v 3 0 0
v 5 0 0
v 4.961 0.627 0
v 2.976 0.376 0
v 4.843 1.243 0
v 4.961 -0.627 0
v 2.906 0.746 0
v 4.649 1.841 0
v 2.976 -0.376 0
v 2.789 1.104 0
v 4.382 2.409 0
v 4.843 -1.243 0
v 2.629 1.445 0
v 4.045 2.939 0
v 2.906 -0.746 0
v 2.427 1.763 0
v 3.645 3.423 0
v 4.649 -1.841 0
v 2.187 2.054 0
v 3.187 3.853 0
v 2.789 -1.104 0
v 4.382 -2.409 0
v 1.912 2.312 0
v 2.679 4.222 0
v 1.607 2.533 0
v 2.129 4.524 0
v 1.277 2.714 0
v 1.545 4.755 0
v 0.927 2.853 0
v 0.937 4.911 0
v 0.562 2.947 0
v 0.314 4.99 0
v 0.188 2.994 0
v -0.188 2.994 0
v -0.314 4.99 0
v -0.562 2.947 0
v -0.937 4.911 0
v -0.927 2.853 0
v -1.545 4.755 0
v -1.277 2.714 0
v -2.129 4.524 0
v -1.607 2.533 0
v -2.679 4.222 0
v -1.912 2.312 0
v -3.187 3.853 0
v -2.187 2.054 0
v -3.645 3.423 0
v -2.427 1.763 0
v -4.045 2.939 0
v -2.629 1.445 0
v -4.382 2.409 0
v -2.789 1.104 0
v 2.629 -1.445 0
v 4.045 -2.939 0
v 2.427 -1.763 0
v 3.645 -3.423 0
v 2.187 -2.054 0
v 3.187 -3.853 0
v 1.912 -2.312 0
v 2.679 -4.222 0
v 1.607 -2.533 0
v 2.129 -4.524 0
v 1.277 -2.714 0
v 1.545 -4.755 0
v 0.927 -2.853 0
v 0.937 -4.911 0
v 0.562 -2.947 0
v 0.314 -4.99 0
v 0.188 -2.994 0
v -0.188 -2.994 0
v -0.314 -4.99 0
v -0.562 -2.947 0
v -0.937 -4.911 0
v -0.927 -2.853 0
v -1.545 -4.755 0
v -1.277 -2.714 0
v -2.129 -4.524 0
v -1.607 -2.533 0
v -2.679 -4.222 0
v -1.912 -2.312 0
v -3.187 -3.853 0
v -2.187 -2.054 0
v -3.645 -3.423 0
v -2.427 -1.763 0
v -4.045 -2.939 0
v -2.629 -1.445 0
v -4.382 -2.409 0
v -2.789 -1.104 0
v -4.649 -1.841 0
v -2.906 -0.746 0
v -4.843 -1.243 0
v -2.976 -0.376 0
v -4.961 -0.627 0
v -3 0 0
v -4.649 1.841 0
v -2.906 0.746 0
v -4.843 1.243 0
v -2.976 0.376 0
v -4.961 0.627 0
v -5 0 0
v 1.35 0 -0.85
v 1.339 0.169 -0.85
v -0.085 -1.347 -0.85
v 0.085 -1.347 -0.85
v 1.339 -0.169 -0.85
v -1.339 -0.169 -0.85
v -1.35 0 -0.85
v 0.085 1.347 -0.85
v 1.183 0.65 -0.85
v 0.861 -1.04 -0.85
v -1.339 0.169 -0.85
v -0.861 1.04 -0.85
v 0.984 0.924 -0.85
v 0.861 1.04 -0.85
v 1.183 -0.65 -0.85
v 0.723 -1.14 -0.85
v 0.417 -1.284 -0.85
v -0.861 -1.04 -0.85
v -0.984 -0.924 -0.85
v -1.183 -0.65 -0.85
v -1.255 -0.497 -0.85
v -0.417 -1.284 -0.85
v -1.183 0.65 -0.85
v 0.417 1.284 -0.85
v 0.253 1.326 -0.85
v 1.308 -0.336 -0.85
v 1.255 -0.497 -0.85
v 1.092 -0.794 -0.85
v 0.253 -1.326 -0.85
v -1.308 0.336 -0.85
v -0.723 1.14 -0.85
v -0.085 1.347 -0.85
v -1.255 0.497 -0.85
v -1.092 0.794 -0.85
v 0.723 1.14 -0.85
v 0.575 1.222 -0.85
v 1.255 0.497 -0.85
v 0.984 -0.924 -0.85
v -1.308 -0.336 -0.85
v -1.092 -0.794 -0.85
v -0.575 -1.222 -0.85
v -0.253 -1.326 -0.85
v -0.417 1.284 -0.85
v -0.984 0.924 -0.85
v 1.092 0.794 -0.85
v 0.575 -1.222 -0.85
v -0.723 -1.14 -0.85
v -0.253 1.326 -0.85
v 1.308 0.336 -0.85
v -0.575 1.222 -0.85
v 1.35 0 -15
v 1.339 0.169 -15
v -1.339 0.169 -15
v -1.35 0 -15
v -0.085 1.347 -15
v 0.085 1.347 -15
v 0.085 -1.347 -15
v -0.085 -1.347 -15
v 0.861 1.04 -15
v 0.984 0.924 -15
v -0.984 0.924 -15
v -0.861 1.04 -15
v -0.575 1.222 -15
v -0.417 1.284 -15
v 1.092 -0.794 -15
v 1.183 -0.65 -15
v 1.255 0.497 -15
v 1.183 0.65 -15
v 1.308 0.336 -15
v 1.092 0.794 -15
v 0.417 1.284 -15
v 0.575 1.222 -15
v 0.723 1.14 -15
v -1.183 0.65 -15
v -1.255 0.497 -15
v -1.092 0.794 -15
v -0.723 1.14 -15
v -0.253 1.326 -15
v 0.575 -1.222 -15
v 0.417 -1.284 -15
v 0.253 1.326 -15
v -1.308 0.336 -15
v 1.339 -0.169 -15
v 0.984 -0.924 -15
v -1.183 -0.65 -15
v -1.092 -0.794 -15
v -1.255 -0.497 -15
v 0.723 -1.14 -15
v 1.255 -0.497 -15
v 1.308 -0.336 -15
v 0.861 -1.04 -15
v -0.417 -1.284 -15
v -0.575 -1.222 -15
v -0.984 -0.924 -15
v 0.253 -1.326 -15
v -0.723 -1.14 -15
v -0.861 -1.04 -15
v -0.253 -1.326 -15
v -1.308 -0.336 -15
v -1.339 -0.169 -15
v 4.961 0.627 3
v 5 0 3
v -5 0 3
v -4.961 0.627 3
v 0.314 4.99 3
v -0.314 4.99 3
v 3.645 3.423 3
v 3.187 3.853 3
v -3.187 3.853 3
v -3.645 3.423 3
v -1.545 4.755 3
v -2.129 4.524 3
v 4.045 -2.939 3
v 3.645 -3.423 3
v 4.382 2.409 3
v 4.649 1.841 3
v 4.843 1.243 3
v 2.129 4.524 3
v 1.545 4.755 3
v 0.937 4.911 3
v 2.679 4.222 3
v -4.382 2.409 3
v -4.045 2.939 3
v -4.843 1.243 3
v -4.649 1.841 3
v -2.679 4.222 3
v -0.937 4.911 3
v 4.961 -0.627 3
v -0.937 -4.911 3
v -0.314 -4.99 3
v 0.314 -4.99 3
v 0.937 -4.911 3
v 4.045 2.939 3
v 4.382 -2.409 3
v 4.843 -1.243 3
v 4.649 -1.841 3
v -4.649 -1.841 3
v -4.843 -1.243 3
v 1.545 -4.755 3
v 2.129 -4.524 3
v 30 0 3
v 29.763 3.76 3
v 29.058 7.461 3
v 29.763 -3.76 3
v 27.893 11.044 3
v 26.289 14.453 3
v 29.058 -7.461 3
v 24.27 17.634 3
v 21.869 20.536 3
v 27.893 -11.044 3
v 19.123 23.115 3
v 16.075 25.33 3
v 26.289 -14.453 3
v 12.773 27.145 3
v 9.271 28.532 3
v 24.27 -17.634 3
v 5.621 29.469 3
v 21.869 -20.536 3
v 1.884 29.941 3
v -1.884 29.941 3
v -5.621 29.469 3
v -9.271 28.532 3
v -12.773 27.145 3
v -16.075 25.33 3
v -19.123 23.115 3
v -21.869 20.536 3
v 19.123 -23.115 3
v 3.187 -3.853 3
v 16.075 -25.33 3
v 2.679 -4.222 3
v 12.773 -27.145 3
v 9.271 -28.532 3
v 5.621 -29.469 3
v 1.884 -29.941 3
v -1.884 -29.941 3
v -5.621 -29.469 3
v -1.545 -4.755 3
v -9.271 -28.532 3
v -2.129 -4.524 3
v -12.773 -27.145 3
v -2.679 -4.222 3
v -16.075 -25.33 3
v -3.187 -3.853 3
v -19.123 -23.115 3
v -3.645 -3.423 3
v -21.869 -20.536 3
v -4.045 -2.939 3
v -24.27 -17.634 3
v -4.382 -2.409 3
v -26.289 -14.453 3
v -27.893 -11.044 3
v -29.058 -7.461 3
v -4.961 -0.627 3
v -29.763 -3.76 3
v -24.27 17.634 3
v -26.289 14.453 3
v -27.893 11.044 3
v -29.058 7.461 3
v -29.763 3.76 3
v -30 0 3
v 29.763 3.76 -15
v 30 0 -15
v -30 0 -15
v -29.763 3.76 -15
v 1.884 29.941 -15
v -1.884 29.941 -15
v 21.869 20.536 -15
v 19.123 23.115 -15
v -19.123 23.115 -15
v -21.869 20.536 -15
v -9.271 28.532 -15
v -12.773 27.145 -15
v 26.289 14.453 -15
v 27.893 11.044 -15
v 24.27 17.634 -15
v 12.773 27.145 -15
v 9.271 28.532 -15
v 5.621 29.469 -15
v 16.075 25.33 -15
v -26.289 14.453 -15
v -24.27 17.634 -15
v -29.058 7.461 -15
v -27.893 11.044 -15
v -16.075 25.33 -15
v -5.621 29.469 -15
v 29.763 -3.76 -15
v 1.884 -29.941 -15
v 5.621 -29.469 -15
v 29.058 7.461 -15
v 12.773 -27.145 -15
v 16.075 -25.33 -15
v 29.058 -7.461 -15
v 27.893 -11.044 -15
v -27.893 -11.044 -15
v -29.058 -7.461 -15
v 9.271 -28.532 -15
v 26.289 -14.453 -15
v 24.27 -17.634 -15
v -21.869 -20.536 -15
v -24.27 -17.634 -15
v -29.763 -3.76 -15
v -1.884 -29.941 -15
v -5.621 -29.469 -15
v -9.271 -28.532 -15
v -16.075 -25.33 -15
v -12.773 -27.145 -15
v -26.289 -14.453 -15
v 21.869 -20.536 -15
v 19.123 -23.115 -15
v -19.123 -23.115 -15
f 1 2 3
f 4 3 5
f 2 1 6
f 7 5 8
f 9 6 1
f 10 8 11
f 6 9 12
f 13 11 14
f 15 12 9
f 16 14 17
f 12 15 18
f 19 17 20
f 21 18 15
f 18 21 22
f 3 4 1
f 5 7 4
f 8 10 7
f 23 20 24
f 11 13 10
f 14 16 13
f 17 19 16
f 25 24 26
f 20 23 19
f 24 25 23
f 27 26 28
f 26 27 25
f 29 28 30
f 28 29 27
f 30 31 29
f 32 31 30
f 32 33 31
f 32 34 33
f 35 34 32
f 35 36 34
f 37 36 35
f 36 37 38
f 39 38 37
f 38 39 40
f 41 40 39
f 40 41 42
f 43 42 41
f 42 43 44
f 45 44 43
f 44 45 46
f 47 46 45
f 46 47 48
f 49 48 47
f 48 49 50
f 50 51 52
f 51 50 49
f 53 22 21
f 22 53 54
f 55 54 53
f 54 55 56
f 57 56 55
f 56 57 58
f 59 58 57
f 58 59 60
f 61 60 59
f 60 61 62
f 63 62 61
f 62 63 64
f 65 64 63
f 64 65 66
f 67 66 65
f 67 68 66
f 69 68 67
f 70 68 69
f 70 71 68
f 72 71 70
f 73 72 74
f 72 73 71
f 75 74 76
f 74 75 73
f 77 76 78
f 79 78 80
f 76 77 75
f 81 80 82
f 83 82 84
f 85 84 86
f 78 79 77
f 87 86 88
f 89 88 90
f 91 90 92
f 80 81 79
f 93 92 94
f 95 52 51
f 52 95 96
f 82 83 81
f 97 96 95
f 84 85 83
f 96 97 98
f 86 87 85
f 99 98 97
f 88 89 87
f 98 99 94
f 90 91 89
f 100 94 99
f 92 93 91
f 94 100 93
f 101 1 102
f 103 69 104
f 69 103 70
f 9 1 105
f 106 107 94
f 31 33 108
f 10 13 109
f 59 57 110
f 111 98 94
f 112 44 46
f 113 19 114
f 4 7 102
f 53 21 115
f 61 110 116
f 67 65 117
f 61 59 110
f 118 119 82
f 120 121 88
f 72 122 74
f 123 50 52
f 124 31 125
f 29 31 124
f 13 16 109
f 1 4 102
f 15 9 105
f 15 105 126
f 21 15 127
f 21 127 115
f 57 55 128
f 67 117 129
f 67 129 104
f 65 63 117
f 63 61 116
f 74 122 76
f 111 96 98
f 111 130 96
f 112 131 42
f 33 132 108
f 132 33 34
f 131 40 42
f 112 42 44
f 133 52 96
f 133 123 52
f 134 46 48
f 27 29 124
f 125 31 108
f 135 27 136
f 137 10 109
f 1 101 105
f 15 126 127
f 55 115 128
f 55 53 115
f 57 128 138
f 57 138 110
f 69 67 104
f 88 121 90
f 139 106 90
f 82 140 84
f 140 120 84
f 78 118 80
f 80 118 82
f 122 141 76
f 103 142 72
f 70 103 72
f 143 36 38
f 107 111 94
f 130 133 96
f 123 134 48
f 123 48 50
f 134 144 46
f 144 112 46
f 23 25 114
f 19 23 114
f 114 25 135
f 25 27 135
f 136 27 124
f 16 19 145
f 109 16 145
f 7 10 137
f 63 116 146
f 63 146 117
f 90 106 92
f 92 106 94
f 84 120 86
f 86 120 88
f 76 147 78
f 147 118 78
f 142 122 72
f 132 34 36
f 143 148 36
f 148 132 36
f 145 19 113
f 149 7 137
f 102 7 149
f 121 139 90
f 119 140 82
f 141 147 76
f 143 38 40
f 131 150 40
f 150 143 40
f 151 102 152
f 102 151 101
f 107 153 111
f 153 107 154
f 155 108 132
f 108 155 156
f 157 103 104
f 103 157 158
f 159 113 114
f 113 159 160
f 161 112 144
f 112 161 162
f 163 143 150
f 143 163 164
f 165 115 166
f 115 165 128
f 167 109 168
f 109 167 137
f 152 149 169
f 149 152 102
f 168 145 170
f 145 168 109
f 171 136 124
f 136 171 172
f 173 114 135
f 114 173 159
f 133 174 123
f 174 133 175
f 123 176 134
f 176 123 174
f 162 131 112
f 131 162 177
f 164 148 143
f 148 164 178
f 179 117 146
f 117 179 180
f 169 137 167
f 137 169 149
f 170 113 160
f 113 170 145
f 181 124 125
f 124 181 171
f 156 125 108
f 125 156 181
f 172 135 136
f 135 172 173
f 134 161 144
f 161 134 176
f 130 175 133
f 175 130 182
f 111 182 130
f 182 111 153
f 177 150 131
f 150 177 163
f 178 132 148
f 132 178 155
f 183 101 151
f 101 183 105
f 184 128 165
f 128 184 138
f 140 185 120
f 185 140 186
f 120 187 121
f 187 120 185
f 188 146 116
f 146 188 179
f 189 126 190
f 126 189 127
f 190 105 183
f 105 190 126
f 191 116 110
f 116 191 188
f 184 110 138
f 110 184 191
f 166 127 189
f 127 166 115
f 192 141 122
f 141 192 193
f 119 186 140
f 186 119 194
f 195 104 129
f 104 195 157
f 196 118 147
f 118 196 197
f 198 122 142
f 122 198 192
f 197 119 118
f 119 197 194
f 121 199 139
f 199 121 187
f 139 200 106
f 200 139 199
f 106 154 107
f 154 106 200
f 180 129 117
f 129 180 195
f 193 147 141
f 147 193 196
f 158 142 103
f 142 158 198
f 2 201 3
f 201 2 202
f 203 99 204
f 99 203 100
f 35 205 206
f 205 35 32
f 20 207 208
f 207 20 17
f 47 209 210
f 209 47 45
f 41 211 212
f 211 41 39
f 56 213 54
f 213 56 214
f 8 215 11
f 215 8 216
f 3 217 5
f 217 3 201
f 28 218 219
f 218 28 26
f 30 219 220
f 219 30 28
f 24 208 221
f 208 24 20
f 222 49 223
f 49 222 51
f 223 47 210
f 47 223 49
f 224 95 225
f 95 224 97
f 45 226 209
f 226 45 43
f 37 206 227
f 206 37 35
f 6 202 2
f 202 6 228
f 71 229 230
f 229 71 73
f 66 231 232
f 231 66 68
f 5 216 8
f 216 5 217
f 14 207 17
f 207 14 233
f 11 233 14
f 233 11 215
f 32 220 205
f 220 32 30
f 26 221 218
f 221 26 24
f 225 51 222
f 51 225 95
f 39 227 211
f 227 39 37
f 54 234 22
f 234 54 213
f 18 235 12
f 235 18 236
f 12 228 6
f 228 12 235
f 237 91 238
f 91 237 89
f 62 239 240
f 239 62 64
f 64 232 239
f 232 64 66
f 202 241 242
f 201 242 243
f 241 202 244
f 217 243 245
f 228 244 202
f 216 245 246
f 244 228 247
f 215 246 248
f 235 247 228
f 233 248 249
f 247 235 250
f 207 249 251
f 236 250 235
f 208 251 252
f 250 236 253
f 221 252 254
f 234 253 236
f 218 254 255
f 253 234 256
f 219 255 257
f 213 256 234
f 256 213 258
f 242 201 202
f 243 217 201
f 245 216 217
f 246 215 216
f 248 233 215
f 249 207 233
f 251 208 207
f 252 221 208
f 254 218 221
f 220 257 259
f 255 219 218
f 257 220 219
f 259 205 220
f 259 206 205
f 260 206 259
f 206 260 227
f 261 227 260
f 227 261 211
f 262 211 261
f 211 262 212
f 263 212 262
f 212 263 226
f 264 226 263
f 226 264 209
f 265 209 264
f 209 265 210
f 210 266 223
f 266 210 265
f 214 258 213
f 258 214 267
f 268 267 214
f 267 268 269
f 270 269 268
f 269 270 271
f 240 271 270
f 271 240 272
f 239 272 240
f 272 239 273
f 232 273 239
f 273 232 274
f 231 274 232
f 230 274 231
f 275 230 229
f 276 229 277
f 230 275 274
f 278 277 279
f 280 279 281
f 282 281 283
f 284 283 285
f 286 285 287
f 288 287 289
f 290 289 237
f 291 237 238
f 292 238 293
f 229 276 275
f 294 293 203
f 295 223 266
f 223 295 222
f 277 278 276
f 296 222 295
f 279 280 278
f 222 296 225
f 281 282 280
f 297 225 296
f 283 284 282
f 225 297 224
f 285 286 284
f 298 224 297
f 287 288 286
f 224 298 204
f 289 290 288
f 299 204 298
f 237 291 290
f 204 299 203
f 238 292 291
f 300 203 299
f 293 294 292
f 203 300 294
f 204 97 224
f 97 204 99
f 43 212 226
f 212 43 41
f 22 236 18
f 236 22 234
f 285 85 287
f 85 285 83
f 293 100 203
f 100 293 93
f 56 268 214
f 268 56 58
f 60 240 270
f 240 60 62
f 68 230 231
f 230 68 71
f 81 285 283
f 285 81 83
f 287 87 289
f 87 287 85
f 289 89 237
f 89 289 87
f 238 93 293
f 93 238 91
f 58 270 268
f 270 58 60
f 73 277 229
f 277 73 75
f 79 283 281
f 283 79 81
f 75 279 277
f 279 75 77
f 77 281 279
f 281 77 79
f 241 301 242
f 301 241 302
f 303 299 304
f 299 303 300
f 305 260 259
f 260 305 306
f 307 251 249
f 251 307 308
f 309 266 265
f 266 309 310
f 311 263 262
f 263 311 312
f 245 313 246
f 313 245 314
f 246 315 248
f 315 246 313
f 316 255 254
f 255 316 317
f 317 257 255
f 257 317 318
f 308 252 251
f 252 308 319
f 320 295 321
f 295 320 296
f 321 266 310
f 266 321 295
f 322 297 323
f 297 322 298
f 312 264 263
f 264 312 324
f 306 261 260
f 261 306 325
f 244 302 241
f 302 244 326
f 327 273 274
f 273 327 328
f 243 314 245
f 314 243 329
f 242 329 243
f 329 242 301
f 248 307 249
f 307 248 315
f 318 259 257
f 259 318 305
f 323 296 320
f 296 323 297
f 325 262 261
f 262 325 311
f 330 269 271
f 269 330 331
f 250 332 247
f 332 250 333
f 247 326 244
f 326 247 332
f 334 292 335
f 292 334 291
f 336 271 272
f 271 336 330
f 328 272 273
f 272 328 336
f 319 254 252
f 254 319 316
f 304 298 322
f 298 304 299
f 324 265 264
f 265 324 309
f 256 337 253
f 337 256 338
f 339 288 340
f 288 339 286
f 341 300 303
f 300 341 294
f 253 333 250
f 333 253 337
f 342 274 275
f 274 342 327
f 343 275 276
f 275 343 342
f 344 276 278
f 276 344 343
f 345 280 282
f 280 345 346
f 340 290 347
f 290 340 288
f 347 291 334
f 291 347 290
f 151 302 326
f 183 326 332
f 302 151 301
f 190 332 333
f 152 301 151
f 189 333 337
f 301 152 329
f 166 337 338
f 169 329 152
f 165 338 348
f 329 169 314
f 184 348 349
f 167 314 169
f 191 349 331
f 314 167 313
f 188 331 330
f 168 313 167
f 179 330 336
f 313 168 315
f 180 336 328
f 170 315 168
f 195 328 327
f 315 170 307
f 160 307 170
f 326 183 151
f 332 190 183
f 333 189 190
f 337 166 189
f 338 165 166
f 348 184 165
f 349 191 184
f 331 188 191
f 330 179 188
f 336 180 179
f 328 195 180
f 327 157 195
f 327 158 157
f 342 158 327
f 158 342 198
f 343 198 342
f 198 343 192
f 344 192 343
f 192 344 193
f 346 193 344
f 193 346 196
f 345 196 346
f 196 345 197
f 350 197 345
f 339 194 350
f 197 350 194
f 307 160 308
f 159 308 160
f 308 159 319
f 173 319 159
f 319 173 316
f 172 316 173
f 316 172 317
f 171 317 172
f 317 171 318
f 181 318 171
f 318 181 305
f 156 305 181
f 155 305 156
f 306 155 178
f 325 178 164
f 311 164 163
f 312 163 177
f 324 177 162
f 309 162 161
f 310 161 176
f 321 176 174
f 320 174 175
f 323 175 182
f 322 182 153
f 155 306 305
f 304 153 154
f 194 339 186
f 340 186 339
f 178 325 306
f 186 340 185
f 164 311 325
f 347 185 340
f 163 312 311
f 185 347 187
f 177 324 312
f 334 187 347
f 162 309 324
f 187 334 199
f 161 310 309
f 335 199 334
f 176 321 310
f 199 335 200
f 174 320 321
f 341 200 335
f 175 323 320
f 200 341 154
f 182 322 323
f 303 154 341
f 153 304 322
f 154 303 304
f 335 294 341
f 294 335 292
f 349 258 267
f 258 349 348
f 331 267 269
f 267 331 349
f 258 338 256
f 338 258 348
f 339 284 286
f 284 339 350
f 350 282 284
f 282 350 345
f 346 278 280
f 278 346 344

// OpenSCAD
$fn = 50;

difference() {
	union() {
		translate(v = [0, 0, -15.0]) {
			cylinder(h = 18, r = 30.0);
		}
	}
	union() {
		translate(v = [0, 0, 0]) {
			rotate(a = [0, 0, 0]) {
				difference() {
					union() {
						translate(v = [0, 0, -18.0]) {
							cylinder(h = 18, r = 1.0);
						}
						translate(v = [0, 0, -0.85]) {
							cylinder(h = 0.85, r1 = 1.35, r2 = 3.0);
						}
						translate(v = [0, 0, -18.0]) {
							cylinder(h = 18, r = 1.35);
						}
						translate(v = [0, 0, -18.0]) {
							cylinder(h = 18, r = 1.0);
						}
					}
					union();
				}
			}
		}
		#cylinder(h = 3, r = 5.0);
	}
}
